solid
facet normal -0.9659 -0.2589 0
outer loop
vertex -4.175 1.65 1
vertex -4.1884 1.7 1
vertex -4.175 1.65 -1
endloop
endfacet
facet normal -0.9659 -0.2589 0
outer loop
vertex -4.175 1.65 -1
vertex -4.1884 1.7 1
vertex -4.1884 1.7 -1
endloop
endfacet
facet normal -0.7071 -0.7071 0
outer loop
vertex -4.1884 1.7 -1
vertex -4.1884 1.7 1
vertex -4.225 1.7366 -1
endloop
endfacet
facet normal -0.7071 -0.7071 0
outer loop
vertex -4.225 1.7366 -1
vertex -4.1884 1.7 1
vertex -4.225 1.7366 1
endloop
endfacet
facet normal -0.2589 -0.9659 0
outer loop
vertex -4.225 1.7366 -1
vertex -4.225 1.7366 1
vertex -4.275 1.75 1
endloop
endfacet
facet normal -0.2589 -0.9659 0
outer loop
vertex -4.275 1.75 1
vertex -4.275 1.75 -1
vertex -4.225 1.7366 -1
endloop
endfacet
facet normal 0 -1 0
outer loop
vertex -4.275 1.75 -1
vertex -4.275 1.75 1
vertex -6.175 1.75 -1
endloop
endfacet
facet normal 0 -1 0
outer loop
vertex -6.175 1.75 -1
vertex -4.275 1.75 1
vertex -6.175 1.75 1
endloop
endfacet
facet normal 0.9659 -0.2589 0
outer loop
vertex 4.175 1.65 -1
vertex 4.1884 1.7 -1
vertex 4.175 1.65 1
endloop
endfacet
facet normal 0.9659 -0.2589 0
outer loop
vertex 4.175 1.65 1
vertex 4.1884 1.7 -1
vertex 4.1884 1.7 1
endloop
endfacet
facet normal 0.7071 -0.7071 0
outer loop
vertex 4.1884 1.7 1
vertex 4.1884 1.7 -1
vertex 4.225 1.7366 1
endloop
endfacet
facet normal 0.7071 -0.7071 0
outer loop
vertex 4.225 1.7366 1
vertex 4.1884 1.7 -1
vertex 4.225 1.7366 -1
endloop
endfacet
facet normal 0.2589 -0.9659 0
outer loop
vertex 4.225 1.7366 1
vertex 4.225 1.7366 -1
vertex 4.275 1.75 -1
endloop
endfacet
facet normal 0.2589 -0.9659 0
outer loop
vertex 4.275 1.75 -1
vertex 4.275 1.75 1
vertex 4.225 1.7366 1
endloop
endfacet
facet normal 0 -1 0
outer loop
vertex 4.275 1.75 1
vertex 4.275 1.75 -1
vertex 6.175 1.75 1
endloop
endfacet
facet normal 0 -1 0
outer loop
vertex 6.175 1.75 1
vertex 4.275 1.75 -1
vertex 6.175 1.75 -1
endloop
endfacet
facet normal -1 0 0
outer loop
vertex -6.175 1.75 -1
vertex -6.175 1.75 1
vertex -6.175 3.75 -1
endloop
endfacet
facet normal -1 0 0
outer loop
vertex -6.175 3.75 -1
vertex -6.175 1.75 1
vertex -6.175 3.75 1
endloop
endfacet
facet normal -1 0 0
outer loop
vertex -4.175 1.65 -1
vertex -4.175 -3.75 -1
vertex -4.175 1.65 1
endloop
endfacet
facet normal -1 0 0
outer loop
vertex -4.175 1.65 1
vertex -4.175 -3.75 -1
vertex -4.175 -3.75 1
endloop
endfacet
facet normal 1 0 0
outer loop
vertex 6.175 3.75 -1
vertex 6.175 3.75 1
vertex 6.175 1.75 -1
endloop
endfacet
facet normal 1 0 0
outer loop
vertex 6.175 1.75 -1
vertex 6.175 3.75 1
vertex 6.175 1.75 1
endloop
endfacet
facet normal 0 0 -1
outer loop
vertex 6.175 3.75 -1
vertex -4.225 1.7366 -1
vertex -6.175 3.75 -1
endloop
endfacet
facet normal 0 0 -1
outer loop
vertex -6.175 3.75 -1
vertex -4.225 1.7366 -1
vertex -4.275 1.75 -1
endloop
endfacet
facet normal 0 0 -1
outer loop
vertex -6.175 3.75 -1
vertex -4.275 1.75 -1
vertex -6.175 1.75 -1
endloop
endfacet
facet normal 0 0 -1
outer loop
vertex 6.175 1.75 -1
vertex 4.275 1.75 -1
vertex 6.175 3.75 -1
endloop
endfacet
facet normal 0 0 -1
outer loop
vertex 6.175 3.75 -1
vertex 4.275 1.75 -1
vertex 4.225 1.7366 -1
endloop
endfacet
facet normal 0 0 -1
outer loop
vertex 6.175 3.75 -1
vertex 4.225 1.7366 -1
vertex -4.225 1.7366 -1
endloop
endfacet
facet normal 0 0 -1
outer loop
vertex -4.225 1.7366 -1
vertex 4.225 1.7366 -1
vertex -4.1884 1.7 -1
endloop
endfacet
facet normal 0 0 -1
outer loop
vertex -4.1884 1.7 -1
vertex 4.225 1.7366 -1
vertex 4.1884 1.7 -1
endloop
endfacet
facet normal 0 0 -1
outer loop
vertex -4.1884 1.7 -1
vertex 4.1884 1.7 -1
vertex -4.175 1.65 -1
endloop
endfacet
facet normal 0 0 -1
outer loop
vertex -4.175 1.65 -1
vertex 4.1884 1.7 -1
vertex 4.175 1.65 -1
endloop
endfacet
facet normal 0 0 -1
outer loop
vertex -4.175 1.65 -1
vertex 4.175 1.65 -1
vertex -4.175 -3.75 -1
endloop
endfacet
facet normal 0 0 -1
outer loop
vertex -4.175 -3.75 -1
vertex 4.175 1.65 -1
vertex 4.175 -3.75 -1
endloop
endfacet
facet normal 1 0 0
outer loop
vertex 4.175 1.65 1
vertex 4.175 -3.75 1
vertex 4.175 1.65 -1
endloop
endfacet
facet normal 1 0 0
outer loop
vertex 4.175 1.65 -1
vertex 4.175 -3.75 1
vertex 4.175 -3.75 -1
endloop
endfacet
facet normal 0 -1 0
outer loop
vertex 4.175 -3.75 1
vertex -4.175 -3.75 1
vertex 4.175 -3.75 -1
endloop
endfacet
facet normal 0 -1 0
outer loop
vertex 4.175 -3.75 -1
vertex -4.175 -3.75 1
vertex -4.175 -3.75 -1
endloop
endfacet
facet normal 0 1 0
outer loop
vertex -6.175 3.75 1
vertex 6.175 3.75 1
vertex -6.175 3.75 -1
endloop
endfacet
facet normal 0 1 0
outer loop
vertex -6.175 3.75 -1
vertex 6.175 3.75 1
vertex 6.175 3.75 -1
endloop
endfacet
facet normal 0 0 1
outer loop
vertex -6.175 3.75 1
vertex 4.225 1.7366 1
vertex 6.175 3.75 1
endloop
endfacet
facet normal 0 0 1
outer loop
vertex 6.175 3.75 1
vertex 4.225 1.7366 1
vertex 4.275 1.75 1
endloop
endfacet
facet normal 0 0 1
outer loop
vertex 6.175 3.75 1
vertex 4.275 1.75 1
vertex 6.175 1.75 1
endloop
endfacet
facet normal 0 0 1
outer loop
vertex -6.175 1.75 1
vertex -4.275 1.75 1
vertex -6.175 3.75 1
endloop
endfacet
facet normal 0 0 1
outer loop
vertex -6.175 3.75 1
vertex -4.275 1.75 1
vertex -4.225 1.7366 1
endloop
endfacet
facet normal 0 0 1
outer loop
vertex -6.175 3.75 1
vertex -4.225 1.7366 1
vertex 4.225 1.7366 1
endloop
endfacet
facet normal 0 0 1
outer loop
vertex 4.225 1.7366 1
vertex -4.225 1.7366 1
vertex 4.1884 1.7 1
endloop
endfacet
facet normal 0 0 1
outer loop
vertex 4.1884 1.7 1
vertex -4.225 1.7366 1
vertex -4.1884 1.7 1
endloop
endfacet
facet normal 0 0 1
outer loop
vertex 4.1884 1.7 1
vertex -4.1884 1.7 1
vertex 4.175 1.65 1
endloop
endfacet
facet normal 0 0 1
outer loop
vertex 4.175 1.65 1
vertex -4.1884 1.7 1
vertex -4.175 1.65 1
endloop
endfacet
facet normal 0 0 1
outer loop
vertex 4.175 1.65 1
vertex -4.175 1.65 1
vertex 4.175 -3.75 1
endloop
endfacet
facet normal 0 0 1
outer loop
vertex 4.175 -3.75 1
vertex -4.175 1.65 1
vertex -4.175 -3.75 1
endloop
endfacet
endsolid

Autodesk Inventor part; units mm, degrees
ref_plane "YZ Plane" through (0, 0, 0) normal (1, 0, 0) x (0, 1, 0)
ref_plane "XZ Plane" through (0, 0, 0) normal (0, 1, 0) x (-1, 0, 0)
ref_plane "XY Plane" through (0, 0, 0) normal (0, 0, 1) x (1, 0, 0)
sketch "Sketch1" plane through (0, 0, 0) normal (0, 0, 1) x (1, 0, 0)
  line L0 (4.175, -3.75) -> (-4.175, -3.75)
  line L1 (-4.175, -3.75) -> (-4.175, 3.75)
  line L2 (-4.175, 3.75) -> (4.175, 3.75)
  line L3 (4.175, 3.75) -> (4.175, -3.75)
  line L4 (4.175, -3.75) -> (-4.175, 3.75) construction
  line L5 (-4.175, -3.75) -> (4.175, 3.75) construction
  point P0 (0, 0)
  dimension "d0" = 8.35
  dimension "d1" = 7.5
extrude "Extrusion1" add sketch "Sketch1" along normal mid plane 2
sketch "Sketch2" plane through (4.175, -3.75, 1) normal (1, 0, 0) x (0, 0, -1)
  line L0 (2, 7.5) -> (0, 7.5) projected
  line L1 (2, 7.5) -> (0, 7.5)
  line L2 (0, 7.5) -> (0, 5.5)
  line L3 (0, 5.5) -> (2, 5.5)
  line L4 (2, 5.5) -> (2, 7.5)
  point P0 (1, 3.75)
  dimension "d4" = 2
  dimension "d5" = 2
extrude "Extrusion2" add sketch "Sketch2" along normal blind 2
sketch "Sketch3" plane through (-4.175, -3.75, 1) normal (-1, 0, 0) x (0, 0, 1)
  line L0 (-2, 7.5) -> (0, 7.5) projected
  line L1 (0, 7.5) -> (0, 0) projected
  line L2 (-2, 7.5) -> (0, 7.5)
  line L3 (0, 7.5) -> (0, 5.5)
  line L4 (0, 5.5) -> (-2, 5.5)
  line L5 (-2, 5.5) -> (-2, 7.5)
  point P0 (-1, 3.75)
  dimension "d8" = 2
extrude "Extrusion3" add sketch "Sketch3" along normal blind 2
fillet "Fillet1" radius 0.1 2 edges at (4.175, 1.75, 0) (-4.175, 1.75, 0)
properties part number "Tapa_2_TFM"
